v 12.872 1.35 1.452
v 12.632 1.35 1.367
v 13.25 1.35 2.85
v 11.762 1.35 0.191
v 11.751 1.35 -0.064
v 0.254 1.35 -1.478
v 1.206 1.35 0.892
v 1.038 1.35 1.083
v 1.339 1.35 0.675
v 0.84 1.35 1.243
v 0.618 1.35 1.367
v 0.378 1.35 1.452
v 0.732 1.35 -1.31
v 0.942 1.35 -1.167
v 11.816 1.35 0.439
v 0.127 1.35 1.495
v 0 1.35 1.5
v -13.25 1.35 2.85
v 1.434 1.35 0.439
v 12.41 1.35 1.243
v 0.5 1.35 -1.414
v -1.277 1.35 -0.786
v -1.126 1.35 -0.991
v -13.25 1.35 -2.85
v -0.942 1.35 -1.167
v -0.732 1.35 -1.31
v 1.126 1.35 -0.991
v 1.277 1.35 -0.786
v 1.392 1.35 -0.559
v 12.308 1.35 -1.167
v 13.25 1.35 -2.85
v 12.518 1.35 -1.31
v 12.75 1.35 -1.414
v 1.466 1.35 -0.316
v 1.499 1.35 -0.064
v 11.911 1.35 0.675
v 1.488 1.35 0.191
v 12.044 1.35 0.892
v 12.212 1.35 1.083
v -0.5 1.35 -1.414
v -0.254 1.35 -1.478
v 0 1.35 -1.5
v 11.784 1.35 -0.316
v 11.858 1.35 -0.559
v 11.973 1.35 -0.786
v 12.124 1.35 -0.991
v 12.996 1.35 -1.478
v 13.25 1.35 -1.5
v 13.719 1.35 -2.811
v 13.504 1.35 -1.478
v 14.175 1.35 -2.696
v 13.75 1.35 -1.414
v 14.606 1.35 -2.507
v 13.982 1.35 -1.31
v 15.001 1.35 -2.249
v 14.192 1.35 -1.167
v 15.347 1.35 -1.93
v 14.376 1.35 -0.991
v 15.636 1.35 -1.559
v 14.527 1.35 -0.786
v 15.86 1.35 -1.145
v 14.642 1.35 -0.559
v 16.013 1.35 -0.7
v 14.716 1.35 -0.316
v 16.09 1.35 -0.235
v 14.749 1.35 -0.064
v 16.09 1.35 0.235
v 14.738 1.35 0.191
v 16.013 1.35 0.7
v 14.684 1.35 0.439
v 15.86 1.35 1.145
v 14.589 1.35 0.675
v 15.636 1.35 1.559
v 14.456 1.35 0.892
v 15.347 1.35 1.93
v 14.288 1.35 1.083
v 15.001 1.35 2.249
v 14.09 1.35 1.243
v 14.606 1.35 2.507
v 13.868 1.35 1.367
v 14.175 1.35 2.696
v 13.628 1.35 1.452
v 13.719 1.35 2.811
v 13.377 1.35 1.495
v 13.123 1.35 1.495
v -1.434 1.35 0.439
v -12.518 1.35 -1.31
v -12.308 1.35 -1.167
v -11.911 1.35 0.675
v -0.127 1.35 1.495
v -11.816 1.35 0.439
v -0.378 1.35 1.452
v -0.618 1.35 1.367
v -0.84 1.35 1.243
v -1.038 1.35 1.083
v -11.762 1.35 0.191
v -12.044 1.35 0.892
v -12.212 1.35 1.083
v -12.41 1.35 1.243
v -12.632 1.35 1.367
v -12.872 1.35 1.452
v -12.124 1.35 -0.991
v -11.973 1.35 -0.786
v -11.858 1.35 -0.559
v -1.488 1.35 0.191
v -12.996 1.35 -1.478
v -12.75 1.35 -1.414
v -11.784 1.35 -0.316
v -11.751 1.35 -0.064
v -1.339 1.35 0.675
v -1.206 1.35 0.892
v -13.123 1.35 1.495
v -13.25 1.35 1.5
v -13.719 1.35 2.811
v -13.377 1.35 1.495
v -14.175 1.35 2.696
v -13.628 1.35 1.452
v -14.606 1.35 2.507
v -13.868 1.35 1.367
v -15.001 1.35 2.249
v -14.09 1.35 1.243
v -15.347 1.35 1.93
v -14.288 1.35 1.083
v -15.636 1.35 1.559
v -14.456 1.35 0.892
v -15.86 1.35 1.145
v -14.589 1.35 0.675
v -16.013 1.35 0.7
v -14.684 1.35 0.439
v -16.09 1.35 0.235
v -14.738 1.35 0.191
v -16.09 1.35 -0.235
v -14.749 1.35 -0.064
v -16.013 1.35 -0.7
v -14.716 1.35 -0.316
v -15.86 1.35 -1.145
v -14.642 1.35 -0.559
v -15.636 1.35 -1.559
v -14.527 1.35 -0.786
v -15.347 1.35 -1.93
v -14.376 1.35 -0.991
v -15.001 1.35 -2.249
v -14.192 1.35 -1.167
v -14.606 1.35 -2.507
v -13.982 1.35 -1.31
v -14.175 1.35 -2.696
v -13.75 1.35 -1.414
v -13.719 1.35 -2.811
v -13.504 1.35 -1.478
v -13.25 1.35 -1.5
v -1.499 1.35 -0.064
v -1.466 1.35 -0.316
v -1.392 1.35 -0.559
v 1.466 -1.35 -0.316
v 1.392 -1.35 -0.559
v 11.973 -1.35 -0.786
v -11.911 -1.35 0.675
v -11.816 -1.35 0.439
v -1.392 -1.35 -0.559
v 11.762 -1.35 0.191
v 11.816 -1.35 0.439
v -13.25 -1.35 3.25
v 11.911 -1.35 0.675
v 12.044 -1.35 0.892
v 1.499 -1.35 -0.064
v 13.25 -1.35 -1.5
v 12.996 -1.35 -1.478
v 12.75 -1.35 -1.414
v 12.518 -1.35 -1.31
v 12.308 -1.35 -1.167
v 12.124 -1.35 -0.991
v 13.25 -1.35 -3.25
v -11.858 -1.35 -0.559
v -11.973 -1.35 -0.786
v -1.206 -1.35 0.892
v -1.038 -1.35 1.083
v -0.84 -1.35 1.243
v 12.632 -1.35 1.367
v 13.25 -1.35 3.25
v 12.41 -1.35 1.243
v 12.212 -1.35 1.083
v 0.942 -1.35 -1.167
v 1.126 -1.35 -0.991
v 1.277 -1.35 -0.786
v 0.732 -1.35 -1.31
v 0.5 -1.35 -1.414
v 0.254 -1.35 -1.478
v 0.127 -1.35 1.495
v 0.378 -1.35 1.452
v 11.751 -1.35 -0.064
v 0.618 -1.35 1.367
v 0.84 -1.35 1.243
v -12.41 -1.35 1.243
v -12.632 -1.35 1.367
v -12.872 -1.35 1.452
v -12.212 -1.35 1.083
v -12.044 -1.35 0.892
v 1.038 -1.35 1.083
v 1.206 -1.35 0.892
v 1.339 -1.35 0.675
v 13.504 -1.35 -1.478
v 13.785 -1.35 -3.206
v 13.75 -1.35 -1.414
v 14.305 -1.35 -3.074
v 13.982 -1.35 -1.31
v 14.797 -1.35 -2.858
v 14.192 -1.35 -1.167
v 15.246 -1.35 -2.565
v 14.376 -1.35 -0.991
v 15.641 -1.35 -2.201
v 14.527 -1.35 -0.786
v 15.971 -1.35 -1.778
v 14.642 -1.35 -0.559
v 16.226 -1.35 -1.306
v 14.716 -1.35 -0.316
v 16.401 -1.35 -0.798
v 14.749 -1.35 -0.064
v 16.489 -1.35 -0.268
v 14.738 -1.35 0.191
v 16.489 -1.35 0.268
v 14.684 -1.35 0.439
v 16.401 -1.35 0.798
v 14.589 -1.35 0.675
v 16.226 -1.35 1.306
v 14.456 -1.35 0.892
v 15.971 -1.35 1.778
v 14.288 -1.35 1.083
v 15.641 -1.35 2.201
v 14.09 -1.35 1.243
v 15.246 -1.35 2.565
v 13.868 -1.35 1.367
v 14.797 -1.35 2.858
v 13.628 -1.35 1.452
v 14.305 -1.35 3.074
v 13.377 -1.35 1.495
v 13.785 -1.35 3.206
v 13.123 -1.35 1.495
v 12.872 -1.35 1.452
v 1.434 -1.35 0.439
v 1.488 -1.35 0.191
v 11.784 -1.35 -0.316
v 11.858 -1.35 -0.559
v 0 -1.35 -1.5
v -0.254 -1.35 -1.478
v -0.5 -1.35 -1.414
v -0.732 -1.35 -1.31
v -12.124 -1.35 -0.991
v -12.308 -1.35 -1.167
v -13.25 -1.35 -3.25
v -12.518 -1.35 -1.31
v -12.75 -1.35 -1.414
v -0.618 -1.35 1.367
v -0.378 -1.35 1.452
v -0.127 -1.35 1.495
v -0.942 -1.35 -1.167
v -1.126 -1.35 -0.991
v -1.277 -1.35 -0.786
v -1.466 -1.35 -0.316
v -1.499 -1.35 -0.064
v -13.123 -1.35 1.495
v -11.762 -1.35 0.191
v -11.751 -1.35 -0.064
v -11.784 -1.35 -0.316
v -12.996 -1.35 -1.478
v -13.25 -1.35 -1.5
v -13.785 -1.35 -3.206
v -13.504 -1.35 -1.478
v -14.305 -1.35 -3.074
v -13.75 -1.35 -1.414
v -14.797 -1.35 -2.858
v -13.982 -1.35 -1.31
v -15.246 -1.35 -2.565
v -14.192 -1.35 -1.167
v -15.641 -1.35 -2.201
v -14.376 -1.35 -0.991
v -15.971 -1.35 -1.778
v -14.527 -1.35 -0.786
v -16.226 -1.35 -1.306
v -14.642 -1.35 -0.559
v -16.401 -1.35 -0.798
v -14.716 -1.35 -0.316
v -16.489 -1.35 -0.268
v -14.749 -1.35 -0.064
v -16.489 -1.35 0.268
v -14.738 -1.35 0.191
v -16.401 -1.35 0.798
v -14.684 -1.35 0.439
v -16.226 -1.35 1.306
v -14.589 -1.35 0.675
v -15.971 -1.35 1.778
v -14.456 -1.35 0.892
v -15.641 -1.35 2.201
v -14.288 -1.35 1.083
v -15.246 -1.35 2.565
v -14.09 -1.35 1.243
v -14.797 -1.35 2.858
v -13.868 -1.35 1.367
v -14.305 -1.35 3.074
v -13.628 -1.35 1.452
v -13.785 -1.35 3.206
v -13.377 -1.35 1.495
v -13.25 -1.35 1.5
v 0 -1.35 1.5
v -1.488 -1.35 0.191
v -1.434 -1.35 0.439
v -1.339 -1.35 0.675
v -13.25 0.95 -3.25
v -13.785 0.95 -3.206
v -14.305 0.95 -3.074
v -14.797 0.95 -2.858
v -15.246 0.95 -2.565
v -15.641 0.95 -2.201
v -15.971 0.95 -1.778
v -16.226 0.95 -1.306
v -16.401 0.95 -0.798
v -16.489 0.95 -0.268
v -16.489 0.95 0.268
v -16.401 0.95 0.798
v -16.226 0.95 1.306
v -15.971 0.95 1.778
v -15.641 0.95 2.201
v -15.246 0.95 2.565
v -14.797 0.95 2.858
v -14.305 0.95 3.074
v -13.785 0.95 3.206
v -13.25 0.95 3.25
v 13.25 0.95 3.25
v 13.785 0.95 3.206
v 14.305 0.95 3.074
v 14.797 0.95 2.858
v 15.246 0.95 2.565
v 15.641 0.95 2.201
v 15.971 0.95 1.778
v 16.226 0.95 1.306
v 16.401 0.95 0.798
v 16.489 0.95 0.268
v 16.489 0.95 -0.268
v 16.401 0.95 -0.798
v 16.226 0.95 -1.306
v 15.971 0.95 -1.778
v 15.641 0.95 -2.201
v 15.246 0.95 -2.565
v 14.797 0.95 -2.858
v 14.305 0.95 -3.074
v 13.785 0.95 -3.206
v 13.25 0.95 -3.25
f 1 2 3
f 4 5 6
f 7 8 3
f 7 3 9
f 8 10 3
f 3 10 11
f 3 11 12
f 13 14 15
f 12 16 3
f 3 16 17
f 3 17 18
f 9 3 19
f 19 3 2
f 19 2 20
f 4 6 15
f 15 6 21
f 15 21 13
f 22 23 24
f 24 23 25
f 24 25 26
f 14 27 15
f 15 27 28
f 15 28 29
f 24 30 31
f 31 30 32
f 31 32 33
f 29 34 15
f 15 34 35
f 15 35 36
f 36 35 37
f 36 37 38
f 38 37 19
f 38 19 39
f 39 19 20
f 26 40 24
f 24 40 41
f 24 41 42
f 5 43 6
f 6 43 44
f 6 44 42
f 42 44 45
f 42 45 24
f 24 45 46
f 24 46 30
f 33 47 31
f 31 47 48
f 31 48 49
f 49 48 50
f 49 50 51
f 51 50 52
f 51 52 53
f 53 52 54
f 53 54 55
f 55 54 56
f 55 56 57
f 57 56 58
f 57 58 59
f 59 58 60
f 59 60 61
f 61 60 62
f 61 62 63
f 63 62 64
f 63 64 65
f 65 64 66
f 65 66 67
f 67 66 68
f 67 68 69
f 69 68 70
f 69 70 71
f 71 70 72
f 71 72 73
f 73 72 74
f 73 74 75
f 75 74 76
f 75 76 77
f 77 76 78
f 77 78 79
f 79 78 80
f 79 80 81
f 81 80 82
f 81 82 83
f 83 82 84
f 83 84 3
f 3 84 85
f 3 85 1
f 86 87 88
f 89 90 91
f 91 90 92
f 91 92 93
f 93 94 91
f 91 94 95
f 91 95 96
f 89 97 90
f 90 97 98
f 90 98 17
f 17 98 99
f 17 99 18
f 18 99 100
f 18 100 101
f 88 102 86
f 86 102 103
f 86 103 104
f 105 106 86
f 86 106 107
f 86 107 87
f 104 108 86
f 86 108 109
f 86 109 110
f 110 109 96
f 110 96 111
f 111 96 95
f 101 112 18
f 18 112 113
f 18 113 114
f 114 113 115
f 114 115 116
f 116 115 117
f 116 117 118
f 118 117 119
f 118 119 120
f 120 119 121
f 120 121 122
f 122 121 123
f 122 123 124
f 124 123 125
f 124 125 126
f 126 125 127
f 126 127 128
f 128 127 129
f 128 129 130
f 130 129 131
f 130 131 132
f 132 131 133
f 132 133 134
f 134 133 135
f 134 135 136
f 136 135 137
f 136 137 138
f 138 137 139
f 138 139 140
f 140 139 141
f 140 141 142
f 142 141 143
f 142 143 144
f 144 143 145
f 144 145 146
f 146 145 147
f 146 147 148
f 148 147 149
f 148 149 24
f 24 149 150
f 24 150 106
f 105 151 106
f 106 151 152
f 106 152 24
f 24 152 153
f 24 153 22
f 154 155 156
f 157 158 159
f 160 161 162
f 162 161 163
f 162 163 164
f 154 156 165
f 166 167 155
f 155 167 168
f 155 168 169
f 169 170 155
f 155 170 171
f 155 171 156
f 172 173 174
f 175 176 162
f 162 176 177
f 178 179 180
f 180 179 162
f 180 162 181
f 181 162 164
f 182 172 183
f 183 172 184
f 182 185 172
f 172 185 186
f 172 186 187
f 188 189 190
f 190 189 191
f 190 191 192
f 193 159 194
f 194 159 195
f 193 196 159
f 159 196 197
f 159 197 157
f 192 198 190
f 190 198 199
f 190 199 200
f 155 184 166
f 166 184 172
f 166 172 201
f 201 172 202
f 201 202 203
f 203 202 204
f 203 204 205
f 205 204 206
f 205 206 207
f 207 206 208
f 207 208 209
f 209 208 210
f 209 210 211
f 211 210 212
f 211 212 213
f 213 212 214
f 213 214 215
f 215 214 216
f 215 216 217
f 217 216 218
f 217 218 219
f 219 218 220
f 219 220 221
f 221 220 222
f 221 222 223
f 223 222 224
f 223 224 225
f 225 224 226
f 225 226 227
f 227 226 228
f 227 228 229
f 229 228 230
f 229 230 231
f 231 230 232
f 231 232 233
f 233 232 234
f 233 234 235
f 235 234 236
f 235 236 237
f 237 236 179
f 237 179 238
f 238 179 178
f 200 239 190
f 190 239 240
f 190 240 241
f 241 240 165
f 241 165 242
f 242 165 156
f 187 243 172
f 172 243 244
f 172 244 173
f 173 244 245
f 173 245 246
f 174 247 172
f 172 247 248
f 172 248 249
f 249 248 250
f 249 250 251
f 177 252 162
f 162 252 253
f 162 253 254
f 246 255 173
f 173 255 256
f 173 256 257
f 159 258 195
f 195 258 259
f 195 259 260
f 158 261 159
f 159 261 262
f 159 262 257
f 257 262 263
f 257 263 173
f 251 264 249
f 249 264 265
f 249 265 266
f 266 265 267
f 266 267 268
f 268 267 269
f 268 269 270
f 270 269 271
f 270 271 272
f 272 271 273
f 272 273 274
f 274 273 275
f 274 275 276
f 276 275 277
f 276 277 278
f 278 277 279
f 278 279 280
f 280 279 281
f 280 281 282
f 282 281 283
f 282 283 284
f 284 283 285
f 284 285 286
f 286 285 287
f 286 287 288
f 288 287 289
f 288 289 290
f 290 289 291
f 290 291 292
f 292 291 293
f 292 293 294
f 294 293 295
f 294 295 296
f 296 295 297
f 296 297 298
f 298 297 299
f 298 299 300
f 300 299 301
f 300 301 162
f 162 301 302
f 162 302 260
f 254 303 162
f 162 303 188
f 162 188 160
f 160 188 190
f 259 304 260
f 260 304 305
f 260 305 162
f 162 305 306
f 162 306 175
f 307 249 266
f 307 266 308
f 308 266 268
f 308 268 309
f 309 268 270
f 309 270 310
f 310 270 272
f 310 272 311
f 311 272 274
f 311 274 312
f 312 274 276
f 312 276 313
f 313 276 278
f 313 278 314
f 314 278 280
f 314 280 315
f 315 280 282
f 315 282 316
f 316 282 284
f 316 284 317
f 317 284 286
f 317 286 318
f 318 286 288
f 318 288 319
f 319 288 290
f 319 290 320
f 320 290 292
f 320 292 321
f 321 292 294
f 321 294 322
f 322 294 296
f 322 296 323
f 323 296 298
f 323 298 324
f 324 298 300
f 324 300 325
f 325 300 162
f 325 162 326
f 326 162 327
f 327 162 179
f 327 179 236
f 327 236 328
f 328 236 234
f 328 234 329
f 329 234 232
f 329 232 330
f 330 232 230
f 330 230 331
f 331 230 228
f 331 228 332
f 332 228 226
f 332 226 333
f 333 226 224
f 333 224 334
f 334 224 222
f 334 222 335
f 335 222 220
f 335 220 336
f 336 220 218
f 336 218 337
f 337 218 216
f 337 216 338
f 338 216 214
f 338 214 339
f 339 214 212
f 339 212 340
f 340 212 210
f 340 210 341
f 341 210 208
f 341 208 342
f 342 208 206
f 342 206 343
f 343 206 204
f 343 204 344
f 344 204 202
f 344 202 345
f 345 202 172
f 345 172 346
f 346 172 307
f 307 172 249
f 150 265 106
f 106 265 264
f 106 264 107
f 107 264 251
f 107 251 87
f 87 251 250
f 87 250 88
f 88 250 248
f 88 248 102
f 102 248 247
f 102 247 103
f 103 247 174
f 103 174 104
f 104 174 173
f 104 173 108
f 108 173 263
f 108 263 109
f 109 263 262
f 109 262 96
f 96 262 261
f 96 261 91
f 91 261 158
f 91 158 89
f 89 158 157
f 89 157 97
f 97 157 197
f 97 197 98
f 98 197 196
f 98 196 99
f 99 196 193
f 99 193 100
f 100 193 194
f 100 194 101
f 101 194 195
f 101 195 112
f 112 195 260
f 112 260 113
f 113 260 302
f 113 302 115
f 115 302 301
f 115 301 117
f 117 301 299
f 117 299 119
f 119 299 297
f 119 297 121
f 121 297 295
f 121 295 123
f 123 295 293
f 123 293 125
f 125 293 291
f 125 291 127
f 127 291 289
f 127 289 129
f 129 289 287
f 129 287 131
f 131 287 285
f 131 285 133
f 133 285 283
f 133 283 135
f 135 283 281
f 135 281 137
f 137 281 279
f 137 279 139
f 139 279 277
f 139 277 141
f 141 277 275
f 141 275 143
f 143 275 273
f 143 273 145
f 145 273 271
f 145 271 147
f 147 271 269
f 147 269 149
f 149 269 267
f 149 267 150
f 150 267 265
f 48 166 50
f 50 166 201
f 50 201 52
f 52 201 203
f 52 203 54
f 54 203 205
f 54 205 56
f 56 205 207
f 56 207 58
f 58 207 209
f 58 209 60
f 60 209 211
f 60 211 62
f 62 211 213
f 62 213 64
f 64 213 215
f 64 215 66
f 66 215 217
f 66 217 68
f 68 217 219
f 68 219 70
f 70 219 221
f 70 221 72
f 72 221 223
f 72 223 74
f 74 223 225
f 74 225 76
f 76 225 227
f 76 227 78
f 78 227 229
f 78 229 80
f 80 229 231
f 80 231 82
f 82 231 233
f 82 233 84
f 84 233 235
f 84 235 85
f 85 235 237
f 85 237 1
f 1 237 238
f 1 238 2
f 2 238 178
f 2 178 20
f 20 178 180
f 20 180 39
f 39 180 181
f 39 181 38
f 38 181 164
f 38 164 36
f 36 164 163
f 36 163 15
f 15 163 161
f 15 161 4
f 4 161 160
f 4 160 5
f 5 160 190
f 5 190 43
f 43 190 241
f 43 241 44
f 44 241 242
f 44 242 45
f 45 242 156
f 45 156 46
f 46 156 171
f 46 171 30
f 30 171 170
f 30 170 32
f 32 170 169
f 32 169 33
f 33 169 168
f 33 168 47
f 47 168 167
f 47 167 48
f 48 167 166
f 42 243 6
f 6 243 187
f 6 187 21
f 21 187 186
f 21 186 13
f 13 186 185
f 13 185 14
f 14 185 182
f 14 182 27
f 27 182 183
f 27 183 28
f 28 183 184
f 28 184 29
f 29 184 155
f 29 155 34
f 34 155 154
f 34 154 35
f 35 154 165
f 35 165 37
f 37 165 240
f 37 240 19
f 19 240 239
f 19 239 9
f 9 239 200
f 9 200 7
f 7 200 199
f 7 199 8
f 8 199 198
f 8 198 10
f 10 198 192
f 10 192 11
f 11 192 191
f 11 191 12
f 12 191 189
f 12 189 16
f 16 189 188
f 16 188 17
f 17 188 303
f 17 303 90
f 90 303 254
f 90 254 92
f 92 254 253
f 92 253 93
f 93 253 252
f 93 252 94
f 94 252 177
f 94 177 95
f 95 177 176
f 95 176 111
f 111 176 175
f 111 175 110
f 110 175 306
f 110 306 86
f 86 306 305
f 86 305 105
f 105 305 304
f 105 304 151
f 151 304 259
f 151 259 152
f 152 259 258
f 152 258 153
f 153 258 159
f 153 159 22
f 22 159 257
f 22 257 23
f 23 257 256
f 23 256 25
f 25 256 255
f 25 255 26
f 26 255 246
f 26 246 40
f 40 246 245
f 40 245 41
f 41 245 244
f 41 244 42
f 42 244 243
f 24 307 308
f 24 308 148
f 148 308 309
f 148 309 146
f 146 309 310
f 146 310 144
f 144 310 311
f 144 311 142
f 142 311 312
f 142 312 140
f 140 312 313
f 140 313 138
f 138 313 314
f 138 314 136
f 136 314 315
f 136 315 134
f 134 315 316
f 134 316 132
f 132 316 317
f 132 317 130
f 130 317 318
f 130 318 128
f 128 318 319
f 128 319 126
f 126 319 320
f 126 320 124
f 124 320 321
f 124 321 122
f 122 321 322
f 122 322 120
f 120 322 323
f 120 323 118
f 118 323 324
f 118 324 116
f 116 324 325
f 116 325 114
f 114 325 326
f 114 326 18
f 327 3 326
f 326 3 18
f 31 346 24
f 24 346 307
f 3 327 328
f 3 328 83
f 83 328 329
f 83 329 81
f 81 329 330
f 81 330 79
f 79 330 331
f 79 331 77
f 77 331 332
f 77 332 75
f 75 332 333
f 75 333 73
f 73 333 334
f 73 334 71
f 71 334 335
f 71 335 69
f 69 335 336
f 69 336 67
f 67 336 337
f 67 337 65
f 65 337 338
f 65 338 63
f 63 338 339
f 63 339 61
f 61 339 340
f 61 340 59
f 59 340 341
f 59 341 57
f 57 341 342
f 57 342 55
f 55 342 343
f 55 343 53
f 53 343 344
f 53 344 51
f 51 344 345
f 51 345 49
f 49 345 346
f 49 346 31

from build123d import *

# Parameters (mm, degrees)
SKETCH1_R           = 1.5
BOSS_EXTRUDE1_DEPTH = 1.35
CHAMFER1_SIZE       = 0.4


with BuildPart() as part:
    # Sketch1 → Boss-Extrude1 (new body, symmetric)
    with BuildSketch(Plane(origin=(0, 0, 0), x_dir=(1, 0, 0), z_dir=(0, 1, 0))):
        with BuildLine():
            Line((-13.25, 3.25), (13.25, 3.25))
            ThreePointArc((13.25, 3.25), (16.5, 0), (13.25, -3.25))
            Line((13.25, -3.25), (-13.25, -3.25))
            ThreePointArc((-13.25, -3.25), (-16.5, 0), (-13.25, 3.25))
        make_face()
        with Locations((-13.25, 0)):
            Circle(SKETCH1_R, mode=Mode.SUBTRACT)
        with Locations((13.25, 0)):
            Circle(SKETCH1_R, mode=Mode.SUBTRACT)
        Circle(SKETCH1_R, mode=Mode.SUBTRACT)
    extrude(amount=BOSS_EXTRUDE1_DEPTH, both=True)

    # Chamfer1
    chamfer1_edges = [part.edges().sort_by_distance(p)[0] for p in [
        (16.5, 1.35, 0),
        (0, 1.35, -3.25),
        (-16.5, 1.35, 0),
        (0, 1.35, 3.25),
    ]]
    chamfer(chamfer1_edges, length=CHAMFER1_SIZE)


solid = part.part
